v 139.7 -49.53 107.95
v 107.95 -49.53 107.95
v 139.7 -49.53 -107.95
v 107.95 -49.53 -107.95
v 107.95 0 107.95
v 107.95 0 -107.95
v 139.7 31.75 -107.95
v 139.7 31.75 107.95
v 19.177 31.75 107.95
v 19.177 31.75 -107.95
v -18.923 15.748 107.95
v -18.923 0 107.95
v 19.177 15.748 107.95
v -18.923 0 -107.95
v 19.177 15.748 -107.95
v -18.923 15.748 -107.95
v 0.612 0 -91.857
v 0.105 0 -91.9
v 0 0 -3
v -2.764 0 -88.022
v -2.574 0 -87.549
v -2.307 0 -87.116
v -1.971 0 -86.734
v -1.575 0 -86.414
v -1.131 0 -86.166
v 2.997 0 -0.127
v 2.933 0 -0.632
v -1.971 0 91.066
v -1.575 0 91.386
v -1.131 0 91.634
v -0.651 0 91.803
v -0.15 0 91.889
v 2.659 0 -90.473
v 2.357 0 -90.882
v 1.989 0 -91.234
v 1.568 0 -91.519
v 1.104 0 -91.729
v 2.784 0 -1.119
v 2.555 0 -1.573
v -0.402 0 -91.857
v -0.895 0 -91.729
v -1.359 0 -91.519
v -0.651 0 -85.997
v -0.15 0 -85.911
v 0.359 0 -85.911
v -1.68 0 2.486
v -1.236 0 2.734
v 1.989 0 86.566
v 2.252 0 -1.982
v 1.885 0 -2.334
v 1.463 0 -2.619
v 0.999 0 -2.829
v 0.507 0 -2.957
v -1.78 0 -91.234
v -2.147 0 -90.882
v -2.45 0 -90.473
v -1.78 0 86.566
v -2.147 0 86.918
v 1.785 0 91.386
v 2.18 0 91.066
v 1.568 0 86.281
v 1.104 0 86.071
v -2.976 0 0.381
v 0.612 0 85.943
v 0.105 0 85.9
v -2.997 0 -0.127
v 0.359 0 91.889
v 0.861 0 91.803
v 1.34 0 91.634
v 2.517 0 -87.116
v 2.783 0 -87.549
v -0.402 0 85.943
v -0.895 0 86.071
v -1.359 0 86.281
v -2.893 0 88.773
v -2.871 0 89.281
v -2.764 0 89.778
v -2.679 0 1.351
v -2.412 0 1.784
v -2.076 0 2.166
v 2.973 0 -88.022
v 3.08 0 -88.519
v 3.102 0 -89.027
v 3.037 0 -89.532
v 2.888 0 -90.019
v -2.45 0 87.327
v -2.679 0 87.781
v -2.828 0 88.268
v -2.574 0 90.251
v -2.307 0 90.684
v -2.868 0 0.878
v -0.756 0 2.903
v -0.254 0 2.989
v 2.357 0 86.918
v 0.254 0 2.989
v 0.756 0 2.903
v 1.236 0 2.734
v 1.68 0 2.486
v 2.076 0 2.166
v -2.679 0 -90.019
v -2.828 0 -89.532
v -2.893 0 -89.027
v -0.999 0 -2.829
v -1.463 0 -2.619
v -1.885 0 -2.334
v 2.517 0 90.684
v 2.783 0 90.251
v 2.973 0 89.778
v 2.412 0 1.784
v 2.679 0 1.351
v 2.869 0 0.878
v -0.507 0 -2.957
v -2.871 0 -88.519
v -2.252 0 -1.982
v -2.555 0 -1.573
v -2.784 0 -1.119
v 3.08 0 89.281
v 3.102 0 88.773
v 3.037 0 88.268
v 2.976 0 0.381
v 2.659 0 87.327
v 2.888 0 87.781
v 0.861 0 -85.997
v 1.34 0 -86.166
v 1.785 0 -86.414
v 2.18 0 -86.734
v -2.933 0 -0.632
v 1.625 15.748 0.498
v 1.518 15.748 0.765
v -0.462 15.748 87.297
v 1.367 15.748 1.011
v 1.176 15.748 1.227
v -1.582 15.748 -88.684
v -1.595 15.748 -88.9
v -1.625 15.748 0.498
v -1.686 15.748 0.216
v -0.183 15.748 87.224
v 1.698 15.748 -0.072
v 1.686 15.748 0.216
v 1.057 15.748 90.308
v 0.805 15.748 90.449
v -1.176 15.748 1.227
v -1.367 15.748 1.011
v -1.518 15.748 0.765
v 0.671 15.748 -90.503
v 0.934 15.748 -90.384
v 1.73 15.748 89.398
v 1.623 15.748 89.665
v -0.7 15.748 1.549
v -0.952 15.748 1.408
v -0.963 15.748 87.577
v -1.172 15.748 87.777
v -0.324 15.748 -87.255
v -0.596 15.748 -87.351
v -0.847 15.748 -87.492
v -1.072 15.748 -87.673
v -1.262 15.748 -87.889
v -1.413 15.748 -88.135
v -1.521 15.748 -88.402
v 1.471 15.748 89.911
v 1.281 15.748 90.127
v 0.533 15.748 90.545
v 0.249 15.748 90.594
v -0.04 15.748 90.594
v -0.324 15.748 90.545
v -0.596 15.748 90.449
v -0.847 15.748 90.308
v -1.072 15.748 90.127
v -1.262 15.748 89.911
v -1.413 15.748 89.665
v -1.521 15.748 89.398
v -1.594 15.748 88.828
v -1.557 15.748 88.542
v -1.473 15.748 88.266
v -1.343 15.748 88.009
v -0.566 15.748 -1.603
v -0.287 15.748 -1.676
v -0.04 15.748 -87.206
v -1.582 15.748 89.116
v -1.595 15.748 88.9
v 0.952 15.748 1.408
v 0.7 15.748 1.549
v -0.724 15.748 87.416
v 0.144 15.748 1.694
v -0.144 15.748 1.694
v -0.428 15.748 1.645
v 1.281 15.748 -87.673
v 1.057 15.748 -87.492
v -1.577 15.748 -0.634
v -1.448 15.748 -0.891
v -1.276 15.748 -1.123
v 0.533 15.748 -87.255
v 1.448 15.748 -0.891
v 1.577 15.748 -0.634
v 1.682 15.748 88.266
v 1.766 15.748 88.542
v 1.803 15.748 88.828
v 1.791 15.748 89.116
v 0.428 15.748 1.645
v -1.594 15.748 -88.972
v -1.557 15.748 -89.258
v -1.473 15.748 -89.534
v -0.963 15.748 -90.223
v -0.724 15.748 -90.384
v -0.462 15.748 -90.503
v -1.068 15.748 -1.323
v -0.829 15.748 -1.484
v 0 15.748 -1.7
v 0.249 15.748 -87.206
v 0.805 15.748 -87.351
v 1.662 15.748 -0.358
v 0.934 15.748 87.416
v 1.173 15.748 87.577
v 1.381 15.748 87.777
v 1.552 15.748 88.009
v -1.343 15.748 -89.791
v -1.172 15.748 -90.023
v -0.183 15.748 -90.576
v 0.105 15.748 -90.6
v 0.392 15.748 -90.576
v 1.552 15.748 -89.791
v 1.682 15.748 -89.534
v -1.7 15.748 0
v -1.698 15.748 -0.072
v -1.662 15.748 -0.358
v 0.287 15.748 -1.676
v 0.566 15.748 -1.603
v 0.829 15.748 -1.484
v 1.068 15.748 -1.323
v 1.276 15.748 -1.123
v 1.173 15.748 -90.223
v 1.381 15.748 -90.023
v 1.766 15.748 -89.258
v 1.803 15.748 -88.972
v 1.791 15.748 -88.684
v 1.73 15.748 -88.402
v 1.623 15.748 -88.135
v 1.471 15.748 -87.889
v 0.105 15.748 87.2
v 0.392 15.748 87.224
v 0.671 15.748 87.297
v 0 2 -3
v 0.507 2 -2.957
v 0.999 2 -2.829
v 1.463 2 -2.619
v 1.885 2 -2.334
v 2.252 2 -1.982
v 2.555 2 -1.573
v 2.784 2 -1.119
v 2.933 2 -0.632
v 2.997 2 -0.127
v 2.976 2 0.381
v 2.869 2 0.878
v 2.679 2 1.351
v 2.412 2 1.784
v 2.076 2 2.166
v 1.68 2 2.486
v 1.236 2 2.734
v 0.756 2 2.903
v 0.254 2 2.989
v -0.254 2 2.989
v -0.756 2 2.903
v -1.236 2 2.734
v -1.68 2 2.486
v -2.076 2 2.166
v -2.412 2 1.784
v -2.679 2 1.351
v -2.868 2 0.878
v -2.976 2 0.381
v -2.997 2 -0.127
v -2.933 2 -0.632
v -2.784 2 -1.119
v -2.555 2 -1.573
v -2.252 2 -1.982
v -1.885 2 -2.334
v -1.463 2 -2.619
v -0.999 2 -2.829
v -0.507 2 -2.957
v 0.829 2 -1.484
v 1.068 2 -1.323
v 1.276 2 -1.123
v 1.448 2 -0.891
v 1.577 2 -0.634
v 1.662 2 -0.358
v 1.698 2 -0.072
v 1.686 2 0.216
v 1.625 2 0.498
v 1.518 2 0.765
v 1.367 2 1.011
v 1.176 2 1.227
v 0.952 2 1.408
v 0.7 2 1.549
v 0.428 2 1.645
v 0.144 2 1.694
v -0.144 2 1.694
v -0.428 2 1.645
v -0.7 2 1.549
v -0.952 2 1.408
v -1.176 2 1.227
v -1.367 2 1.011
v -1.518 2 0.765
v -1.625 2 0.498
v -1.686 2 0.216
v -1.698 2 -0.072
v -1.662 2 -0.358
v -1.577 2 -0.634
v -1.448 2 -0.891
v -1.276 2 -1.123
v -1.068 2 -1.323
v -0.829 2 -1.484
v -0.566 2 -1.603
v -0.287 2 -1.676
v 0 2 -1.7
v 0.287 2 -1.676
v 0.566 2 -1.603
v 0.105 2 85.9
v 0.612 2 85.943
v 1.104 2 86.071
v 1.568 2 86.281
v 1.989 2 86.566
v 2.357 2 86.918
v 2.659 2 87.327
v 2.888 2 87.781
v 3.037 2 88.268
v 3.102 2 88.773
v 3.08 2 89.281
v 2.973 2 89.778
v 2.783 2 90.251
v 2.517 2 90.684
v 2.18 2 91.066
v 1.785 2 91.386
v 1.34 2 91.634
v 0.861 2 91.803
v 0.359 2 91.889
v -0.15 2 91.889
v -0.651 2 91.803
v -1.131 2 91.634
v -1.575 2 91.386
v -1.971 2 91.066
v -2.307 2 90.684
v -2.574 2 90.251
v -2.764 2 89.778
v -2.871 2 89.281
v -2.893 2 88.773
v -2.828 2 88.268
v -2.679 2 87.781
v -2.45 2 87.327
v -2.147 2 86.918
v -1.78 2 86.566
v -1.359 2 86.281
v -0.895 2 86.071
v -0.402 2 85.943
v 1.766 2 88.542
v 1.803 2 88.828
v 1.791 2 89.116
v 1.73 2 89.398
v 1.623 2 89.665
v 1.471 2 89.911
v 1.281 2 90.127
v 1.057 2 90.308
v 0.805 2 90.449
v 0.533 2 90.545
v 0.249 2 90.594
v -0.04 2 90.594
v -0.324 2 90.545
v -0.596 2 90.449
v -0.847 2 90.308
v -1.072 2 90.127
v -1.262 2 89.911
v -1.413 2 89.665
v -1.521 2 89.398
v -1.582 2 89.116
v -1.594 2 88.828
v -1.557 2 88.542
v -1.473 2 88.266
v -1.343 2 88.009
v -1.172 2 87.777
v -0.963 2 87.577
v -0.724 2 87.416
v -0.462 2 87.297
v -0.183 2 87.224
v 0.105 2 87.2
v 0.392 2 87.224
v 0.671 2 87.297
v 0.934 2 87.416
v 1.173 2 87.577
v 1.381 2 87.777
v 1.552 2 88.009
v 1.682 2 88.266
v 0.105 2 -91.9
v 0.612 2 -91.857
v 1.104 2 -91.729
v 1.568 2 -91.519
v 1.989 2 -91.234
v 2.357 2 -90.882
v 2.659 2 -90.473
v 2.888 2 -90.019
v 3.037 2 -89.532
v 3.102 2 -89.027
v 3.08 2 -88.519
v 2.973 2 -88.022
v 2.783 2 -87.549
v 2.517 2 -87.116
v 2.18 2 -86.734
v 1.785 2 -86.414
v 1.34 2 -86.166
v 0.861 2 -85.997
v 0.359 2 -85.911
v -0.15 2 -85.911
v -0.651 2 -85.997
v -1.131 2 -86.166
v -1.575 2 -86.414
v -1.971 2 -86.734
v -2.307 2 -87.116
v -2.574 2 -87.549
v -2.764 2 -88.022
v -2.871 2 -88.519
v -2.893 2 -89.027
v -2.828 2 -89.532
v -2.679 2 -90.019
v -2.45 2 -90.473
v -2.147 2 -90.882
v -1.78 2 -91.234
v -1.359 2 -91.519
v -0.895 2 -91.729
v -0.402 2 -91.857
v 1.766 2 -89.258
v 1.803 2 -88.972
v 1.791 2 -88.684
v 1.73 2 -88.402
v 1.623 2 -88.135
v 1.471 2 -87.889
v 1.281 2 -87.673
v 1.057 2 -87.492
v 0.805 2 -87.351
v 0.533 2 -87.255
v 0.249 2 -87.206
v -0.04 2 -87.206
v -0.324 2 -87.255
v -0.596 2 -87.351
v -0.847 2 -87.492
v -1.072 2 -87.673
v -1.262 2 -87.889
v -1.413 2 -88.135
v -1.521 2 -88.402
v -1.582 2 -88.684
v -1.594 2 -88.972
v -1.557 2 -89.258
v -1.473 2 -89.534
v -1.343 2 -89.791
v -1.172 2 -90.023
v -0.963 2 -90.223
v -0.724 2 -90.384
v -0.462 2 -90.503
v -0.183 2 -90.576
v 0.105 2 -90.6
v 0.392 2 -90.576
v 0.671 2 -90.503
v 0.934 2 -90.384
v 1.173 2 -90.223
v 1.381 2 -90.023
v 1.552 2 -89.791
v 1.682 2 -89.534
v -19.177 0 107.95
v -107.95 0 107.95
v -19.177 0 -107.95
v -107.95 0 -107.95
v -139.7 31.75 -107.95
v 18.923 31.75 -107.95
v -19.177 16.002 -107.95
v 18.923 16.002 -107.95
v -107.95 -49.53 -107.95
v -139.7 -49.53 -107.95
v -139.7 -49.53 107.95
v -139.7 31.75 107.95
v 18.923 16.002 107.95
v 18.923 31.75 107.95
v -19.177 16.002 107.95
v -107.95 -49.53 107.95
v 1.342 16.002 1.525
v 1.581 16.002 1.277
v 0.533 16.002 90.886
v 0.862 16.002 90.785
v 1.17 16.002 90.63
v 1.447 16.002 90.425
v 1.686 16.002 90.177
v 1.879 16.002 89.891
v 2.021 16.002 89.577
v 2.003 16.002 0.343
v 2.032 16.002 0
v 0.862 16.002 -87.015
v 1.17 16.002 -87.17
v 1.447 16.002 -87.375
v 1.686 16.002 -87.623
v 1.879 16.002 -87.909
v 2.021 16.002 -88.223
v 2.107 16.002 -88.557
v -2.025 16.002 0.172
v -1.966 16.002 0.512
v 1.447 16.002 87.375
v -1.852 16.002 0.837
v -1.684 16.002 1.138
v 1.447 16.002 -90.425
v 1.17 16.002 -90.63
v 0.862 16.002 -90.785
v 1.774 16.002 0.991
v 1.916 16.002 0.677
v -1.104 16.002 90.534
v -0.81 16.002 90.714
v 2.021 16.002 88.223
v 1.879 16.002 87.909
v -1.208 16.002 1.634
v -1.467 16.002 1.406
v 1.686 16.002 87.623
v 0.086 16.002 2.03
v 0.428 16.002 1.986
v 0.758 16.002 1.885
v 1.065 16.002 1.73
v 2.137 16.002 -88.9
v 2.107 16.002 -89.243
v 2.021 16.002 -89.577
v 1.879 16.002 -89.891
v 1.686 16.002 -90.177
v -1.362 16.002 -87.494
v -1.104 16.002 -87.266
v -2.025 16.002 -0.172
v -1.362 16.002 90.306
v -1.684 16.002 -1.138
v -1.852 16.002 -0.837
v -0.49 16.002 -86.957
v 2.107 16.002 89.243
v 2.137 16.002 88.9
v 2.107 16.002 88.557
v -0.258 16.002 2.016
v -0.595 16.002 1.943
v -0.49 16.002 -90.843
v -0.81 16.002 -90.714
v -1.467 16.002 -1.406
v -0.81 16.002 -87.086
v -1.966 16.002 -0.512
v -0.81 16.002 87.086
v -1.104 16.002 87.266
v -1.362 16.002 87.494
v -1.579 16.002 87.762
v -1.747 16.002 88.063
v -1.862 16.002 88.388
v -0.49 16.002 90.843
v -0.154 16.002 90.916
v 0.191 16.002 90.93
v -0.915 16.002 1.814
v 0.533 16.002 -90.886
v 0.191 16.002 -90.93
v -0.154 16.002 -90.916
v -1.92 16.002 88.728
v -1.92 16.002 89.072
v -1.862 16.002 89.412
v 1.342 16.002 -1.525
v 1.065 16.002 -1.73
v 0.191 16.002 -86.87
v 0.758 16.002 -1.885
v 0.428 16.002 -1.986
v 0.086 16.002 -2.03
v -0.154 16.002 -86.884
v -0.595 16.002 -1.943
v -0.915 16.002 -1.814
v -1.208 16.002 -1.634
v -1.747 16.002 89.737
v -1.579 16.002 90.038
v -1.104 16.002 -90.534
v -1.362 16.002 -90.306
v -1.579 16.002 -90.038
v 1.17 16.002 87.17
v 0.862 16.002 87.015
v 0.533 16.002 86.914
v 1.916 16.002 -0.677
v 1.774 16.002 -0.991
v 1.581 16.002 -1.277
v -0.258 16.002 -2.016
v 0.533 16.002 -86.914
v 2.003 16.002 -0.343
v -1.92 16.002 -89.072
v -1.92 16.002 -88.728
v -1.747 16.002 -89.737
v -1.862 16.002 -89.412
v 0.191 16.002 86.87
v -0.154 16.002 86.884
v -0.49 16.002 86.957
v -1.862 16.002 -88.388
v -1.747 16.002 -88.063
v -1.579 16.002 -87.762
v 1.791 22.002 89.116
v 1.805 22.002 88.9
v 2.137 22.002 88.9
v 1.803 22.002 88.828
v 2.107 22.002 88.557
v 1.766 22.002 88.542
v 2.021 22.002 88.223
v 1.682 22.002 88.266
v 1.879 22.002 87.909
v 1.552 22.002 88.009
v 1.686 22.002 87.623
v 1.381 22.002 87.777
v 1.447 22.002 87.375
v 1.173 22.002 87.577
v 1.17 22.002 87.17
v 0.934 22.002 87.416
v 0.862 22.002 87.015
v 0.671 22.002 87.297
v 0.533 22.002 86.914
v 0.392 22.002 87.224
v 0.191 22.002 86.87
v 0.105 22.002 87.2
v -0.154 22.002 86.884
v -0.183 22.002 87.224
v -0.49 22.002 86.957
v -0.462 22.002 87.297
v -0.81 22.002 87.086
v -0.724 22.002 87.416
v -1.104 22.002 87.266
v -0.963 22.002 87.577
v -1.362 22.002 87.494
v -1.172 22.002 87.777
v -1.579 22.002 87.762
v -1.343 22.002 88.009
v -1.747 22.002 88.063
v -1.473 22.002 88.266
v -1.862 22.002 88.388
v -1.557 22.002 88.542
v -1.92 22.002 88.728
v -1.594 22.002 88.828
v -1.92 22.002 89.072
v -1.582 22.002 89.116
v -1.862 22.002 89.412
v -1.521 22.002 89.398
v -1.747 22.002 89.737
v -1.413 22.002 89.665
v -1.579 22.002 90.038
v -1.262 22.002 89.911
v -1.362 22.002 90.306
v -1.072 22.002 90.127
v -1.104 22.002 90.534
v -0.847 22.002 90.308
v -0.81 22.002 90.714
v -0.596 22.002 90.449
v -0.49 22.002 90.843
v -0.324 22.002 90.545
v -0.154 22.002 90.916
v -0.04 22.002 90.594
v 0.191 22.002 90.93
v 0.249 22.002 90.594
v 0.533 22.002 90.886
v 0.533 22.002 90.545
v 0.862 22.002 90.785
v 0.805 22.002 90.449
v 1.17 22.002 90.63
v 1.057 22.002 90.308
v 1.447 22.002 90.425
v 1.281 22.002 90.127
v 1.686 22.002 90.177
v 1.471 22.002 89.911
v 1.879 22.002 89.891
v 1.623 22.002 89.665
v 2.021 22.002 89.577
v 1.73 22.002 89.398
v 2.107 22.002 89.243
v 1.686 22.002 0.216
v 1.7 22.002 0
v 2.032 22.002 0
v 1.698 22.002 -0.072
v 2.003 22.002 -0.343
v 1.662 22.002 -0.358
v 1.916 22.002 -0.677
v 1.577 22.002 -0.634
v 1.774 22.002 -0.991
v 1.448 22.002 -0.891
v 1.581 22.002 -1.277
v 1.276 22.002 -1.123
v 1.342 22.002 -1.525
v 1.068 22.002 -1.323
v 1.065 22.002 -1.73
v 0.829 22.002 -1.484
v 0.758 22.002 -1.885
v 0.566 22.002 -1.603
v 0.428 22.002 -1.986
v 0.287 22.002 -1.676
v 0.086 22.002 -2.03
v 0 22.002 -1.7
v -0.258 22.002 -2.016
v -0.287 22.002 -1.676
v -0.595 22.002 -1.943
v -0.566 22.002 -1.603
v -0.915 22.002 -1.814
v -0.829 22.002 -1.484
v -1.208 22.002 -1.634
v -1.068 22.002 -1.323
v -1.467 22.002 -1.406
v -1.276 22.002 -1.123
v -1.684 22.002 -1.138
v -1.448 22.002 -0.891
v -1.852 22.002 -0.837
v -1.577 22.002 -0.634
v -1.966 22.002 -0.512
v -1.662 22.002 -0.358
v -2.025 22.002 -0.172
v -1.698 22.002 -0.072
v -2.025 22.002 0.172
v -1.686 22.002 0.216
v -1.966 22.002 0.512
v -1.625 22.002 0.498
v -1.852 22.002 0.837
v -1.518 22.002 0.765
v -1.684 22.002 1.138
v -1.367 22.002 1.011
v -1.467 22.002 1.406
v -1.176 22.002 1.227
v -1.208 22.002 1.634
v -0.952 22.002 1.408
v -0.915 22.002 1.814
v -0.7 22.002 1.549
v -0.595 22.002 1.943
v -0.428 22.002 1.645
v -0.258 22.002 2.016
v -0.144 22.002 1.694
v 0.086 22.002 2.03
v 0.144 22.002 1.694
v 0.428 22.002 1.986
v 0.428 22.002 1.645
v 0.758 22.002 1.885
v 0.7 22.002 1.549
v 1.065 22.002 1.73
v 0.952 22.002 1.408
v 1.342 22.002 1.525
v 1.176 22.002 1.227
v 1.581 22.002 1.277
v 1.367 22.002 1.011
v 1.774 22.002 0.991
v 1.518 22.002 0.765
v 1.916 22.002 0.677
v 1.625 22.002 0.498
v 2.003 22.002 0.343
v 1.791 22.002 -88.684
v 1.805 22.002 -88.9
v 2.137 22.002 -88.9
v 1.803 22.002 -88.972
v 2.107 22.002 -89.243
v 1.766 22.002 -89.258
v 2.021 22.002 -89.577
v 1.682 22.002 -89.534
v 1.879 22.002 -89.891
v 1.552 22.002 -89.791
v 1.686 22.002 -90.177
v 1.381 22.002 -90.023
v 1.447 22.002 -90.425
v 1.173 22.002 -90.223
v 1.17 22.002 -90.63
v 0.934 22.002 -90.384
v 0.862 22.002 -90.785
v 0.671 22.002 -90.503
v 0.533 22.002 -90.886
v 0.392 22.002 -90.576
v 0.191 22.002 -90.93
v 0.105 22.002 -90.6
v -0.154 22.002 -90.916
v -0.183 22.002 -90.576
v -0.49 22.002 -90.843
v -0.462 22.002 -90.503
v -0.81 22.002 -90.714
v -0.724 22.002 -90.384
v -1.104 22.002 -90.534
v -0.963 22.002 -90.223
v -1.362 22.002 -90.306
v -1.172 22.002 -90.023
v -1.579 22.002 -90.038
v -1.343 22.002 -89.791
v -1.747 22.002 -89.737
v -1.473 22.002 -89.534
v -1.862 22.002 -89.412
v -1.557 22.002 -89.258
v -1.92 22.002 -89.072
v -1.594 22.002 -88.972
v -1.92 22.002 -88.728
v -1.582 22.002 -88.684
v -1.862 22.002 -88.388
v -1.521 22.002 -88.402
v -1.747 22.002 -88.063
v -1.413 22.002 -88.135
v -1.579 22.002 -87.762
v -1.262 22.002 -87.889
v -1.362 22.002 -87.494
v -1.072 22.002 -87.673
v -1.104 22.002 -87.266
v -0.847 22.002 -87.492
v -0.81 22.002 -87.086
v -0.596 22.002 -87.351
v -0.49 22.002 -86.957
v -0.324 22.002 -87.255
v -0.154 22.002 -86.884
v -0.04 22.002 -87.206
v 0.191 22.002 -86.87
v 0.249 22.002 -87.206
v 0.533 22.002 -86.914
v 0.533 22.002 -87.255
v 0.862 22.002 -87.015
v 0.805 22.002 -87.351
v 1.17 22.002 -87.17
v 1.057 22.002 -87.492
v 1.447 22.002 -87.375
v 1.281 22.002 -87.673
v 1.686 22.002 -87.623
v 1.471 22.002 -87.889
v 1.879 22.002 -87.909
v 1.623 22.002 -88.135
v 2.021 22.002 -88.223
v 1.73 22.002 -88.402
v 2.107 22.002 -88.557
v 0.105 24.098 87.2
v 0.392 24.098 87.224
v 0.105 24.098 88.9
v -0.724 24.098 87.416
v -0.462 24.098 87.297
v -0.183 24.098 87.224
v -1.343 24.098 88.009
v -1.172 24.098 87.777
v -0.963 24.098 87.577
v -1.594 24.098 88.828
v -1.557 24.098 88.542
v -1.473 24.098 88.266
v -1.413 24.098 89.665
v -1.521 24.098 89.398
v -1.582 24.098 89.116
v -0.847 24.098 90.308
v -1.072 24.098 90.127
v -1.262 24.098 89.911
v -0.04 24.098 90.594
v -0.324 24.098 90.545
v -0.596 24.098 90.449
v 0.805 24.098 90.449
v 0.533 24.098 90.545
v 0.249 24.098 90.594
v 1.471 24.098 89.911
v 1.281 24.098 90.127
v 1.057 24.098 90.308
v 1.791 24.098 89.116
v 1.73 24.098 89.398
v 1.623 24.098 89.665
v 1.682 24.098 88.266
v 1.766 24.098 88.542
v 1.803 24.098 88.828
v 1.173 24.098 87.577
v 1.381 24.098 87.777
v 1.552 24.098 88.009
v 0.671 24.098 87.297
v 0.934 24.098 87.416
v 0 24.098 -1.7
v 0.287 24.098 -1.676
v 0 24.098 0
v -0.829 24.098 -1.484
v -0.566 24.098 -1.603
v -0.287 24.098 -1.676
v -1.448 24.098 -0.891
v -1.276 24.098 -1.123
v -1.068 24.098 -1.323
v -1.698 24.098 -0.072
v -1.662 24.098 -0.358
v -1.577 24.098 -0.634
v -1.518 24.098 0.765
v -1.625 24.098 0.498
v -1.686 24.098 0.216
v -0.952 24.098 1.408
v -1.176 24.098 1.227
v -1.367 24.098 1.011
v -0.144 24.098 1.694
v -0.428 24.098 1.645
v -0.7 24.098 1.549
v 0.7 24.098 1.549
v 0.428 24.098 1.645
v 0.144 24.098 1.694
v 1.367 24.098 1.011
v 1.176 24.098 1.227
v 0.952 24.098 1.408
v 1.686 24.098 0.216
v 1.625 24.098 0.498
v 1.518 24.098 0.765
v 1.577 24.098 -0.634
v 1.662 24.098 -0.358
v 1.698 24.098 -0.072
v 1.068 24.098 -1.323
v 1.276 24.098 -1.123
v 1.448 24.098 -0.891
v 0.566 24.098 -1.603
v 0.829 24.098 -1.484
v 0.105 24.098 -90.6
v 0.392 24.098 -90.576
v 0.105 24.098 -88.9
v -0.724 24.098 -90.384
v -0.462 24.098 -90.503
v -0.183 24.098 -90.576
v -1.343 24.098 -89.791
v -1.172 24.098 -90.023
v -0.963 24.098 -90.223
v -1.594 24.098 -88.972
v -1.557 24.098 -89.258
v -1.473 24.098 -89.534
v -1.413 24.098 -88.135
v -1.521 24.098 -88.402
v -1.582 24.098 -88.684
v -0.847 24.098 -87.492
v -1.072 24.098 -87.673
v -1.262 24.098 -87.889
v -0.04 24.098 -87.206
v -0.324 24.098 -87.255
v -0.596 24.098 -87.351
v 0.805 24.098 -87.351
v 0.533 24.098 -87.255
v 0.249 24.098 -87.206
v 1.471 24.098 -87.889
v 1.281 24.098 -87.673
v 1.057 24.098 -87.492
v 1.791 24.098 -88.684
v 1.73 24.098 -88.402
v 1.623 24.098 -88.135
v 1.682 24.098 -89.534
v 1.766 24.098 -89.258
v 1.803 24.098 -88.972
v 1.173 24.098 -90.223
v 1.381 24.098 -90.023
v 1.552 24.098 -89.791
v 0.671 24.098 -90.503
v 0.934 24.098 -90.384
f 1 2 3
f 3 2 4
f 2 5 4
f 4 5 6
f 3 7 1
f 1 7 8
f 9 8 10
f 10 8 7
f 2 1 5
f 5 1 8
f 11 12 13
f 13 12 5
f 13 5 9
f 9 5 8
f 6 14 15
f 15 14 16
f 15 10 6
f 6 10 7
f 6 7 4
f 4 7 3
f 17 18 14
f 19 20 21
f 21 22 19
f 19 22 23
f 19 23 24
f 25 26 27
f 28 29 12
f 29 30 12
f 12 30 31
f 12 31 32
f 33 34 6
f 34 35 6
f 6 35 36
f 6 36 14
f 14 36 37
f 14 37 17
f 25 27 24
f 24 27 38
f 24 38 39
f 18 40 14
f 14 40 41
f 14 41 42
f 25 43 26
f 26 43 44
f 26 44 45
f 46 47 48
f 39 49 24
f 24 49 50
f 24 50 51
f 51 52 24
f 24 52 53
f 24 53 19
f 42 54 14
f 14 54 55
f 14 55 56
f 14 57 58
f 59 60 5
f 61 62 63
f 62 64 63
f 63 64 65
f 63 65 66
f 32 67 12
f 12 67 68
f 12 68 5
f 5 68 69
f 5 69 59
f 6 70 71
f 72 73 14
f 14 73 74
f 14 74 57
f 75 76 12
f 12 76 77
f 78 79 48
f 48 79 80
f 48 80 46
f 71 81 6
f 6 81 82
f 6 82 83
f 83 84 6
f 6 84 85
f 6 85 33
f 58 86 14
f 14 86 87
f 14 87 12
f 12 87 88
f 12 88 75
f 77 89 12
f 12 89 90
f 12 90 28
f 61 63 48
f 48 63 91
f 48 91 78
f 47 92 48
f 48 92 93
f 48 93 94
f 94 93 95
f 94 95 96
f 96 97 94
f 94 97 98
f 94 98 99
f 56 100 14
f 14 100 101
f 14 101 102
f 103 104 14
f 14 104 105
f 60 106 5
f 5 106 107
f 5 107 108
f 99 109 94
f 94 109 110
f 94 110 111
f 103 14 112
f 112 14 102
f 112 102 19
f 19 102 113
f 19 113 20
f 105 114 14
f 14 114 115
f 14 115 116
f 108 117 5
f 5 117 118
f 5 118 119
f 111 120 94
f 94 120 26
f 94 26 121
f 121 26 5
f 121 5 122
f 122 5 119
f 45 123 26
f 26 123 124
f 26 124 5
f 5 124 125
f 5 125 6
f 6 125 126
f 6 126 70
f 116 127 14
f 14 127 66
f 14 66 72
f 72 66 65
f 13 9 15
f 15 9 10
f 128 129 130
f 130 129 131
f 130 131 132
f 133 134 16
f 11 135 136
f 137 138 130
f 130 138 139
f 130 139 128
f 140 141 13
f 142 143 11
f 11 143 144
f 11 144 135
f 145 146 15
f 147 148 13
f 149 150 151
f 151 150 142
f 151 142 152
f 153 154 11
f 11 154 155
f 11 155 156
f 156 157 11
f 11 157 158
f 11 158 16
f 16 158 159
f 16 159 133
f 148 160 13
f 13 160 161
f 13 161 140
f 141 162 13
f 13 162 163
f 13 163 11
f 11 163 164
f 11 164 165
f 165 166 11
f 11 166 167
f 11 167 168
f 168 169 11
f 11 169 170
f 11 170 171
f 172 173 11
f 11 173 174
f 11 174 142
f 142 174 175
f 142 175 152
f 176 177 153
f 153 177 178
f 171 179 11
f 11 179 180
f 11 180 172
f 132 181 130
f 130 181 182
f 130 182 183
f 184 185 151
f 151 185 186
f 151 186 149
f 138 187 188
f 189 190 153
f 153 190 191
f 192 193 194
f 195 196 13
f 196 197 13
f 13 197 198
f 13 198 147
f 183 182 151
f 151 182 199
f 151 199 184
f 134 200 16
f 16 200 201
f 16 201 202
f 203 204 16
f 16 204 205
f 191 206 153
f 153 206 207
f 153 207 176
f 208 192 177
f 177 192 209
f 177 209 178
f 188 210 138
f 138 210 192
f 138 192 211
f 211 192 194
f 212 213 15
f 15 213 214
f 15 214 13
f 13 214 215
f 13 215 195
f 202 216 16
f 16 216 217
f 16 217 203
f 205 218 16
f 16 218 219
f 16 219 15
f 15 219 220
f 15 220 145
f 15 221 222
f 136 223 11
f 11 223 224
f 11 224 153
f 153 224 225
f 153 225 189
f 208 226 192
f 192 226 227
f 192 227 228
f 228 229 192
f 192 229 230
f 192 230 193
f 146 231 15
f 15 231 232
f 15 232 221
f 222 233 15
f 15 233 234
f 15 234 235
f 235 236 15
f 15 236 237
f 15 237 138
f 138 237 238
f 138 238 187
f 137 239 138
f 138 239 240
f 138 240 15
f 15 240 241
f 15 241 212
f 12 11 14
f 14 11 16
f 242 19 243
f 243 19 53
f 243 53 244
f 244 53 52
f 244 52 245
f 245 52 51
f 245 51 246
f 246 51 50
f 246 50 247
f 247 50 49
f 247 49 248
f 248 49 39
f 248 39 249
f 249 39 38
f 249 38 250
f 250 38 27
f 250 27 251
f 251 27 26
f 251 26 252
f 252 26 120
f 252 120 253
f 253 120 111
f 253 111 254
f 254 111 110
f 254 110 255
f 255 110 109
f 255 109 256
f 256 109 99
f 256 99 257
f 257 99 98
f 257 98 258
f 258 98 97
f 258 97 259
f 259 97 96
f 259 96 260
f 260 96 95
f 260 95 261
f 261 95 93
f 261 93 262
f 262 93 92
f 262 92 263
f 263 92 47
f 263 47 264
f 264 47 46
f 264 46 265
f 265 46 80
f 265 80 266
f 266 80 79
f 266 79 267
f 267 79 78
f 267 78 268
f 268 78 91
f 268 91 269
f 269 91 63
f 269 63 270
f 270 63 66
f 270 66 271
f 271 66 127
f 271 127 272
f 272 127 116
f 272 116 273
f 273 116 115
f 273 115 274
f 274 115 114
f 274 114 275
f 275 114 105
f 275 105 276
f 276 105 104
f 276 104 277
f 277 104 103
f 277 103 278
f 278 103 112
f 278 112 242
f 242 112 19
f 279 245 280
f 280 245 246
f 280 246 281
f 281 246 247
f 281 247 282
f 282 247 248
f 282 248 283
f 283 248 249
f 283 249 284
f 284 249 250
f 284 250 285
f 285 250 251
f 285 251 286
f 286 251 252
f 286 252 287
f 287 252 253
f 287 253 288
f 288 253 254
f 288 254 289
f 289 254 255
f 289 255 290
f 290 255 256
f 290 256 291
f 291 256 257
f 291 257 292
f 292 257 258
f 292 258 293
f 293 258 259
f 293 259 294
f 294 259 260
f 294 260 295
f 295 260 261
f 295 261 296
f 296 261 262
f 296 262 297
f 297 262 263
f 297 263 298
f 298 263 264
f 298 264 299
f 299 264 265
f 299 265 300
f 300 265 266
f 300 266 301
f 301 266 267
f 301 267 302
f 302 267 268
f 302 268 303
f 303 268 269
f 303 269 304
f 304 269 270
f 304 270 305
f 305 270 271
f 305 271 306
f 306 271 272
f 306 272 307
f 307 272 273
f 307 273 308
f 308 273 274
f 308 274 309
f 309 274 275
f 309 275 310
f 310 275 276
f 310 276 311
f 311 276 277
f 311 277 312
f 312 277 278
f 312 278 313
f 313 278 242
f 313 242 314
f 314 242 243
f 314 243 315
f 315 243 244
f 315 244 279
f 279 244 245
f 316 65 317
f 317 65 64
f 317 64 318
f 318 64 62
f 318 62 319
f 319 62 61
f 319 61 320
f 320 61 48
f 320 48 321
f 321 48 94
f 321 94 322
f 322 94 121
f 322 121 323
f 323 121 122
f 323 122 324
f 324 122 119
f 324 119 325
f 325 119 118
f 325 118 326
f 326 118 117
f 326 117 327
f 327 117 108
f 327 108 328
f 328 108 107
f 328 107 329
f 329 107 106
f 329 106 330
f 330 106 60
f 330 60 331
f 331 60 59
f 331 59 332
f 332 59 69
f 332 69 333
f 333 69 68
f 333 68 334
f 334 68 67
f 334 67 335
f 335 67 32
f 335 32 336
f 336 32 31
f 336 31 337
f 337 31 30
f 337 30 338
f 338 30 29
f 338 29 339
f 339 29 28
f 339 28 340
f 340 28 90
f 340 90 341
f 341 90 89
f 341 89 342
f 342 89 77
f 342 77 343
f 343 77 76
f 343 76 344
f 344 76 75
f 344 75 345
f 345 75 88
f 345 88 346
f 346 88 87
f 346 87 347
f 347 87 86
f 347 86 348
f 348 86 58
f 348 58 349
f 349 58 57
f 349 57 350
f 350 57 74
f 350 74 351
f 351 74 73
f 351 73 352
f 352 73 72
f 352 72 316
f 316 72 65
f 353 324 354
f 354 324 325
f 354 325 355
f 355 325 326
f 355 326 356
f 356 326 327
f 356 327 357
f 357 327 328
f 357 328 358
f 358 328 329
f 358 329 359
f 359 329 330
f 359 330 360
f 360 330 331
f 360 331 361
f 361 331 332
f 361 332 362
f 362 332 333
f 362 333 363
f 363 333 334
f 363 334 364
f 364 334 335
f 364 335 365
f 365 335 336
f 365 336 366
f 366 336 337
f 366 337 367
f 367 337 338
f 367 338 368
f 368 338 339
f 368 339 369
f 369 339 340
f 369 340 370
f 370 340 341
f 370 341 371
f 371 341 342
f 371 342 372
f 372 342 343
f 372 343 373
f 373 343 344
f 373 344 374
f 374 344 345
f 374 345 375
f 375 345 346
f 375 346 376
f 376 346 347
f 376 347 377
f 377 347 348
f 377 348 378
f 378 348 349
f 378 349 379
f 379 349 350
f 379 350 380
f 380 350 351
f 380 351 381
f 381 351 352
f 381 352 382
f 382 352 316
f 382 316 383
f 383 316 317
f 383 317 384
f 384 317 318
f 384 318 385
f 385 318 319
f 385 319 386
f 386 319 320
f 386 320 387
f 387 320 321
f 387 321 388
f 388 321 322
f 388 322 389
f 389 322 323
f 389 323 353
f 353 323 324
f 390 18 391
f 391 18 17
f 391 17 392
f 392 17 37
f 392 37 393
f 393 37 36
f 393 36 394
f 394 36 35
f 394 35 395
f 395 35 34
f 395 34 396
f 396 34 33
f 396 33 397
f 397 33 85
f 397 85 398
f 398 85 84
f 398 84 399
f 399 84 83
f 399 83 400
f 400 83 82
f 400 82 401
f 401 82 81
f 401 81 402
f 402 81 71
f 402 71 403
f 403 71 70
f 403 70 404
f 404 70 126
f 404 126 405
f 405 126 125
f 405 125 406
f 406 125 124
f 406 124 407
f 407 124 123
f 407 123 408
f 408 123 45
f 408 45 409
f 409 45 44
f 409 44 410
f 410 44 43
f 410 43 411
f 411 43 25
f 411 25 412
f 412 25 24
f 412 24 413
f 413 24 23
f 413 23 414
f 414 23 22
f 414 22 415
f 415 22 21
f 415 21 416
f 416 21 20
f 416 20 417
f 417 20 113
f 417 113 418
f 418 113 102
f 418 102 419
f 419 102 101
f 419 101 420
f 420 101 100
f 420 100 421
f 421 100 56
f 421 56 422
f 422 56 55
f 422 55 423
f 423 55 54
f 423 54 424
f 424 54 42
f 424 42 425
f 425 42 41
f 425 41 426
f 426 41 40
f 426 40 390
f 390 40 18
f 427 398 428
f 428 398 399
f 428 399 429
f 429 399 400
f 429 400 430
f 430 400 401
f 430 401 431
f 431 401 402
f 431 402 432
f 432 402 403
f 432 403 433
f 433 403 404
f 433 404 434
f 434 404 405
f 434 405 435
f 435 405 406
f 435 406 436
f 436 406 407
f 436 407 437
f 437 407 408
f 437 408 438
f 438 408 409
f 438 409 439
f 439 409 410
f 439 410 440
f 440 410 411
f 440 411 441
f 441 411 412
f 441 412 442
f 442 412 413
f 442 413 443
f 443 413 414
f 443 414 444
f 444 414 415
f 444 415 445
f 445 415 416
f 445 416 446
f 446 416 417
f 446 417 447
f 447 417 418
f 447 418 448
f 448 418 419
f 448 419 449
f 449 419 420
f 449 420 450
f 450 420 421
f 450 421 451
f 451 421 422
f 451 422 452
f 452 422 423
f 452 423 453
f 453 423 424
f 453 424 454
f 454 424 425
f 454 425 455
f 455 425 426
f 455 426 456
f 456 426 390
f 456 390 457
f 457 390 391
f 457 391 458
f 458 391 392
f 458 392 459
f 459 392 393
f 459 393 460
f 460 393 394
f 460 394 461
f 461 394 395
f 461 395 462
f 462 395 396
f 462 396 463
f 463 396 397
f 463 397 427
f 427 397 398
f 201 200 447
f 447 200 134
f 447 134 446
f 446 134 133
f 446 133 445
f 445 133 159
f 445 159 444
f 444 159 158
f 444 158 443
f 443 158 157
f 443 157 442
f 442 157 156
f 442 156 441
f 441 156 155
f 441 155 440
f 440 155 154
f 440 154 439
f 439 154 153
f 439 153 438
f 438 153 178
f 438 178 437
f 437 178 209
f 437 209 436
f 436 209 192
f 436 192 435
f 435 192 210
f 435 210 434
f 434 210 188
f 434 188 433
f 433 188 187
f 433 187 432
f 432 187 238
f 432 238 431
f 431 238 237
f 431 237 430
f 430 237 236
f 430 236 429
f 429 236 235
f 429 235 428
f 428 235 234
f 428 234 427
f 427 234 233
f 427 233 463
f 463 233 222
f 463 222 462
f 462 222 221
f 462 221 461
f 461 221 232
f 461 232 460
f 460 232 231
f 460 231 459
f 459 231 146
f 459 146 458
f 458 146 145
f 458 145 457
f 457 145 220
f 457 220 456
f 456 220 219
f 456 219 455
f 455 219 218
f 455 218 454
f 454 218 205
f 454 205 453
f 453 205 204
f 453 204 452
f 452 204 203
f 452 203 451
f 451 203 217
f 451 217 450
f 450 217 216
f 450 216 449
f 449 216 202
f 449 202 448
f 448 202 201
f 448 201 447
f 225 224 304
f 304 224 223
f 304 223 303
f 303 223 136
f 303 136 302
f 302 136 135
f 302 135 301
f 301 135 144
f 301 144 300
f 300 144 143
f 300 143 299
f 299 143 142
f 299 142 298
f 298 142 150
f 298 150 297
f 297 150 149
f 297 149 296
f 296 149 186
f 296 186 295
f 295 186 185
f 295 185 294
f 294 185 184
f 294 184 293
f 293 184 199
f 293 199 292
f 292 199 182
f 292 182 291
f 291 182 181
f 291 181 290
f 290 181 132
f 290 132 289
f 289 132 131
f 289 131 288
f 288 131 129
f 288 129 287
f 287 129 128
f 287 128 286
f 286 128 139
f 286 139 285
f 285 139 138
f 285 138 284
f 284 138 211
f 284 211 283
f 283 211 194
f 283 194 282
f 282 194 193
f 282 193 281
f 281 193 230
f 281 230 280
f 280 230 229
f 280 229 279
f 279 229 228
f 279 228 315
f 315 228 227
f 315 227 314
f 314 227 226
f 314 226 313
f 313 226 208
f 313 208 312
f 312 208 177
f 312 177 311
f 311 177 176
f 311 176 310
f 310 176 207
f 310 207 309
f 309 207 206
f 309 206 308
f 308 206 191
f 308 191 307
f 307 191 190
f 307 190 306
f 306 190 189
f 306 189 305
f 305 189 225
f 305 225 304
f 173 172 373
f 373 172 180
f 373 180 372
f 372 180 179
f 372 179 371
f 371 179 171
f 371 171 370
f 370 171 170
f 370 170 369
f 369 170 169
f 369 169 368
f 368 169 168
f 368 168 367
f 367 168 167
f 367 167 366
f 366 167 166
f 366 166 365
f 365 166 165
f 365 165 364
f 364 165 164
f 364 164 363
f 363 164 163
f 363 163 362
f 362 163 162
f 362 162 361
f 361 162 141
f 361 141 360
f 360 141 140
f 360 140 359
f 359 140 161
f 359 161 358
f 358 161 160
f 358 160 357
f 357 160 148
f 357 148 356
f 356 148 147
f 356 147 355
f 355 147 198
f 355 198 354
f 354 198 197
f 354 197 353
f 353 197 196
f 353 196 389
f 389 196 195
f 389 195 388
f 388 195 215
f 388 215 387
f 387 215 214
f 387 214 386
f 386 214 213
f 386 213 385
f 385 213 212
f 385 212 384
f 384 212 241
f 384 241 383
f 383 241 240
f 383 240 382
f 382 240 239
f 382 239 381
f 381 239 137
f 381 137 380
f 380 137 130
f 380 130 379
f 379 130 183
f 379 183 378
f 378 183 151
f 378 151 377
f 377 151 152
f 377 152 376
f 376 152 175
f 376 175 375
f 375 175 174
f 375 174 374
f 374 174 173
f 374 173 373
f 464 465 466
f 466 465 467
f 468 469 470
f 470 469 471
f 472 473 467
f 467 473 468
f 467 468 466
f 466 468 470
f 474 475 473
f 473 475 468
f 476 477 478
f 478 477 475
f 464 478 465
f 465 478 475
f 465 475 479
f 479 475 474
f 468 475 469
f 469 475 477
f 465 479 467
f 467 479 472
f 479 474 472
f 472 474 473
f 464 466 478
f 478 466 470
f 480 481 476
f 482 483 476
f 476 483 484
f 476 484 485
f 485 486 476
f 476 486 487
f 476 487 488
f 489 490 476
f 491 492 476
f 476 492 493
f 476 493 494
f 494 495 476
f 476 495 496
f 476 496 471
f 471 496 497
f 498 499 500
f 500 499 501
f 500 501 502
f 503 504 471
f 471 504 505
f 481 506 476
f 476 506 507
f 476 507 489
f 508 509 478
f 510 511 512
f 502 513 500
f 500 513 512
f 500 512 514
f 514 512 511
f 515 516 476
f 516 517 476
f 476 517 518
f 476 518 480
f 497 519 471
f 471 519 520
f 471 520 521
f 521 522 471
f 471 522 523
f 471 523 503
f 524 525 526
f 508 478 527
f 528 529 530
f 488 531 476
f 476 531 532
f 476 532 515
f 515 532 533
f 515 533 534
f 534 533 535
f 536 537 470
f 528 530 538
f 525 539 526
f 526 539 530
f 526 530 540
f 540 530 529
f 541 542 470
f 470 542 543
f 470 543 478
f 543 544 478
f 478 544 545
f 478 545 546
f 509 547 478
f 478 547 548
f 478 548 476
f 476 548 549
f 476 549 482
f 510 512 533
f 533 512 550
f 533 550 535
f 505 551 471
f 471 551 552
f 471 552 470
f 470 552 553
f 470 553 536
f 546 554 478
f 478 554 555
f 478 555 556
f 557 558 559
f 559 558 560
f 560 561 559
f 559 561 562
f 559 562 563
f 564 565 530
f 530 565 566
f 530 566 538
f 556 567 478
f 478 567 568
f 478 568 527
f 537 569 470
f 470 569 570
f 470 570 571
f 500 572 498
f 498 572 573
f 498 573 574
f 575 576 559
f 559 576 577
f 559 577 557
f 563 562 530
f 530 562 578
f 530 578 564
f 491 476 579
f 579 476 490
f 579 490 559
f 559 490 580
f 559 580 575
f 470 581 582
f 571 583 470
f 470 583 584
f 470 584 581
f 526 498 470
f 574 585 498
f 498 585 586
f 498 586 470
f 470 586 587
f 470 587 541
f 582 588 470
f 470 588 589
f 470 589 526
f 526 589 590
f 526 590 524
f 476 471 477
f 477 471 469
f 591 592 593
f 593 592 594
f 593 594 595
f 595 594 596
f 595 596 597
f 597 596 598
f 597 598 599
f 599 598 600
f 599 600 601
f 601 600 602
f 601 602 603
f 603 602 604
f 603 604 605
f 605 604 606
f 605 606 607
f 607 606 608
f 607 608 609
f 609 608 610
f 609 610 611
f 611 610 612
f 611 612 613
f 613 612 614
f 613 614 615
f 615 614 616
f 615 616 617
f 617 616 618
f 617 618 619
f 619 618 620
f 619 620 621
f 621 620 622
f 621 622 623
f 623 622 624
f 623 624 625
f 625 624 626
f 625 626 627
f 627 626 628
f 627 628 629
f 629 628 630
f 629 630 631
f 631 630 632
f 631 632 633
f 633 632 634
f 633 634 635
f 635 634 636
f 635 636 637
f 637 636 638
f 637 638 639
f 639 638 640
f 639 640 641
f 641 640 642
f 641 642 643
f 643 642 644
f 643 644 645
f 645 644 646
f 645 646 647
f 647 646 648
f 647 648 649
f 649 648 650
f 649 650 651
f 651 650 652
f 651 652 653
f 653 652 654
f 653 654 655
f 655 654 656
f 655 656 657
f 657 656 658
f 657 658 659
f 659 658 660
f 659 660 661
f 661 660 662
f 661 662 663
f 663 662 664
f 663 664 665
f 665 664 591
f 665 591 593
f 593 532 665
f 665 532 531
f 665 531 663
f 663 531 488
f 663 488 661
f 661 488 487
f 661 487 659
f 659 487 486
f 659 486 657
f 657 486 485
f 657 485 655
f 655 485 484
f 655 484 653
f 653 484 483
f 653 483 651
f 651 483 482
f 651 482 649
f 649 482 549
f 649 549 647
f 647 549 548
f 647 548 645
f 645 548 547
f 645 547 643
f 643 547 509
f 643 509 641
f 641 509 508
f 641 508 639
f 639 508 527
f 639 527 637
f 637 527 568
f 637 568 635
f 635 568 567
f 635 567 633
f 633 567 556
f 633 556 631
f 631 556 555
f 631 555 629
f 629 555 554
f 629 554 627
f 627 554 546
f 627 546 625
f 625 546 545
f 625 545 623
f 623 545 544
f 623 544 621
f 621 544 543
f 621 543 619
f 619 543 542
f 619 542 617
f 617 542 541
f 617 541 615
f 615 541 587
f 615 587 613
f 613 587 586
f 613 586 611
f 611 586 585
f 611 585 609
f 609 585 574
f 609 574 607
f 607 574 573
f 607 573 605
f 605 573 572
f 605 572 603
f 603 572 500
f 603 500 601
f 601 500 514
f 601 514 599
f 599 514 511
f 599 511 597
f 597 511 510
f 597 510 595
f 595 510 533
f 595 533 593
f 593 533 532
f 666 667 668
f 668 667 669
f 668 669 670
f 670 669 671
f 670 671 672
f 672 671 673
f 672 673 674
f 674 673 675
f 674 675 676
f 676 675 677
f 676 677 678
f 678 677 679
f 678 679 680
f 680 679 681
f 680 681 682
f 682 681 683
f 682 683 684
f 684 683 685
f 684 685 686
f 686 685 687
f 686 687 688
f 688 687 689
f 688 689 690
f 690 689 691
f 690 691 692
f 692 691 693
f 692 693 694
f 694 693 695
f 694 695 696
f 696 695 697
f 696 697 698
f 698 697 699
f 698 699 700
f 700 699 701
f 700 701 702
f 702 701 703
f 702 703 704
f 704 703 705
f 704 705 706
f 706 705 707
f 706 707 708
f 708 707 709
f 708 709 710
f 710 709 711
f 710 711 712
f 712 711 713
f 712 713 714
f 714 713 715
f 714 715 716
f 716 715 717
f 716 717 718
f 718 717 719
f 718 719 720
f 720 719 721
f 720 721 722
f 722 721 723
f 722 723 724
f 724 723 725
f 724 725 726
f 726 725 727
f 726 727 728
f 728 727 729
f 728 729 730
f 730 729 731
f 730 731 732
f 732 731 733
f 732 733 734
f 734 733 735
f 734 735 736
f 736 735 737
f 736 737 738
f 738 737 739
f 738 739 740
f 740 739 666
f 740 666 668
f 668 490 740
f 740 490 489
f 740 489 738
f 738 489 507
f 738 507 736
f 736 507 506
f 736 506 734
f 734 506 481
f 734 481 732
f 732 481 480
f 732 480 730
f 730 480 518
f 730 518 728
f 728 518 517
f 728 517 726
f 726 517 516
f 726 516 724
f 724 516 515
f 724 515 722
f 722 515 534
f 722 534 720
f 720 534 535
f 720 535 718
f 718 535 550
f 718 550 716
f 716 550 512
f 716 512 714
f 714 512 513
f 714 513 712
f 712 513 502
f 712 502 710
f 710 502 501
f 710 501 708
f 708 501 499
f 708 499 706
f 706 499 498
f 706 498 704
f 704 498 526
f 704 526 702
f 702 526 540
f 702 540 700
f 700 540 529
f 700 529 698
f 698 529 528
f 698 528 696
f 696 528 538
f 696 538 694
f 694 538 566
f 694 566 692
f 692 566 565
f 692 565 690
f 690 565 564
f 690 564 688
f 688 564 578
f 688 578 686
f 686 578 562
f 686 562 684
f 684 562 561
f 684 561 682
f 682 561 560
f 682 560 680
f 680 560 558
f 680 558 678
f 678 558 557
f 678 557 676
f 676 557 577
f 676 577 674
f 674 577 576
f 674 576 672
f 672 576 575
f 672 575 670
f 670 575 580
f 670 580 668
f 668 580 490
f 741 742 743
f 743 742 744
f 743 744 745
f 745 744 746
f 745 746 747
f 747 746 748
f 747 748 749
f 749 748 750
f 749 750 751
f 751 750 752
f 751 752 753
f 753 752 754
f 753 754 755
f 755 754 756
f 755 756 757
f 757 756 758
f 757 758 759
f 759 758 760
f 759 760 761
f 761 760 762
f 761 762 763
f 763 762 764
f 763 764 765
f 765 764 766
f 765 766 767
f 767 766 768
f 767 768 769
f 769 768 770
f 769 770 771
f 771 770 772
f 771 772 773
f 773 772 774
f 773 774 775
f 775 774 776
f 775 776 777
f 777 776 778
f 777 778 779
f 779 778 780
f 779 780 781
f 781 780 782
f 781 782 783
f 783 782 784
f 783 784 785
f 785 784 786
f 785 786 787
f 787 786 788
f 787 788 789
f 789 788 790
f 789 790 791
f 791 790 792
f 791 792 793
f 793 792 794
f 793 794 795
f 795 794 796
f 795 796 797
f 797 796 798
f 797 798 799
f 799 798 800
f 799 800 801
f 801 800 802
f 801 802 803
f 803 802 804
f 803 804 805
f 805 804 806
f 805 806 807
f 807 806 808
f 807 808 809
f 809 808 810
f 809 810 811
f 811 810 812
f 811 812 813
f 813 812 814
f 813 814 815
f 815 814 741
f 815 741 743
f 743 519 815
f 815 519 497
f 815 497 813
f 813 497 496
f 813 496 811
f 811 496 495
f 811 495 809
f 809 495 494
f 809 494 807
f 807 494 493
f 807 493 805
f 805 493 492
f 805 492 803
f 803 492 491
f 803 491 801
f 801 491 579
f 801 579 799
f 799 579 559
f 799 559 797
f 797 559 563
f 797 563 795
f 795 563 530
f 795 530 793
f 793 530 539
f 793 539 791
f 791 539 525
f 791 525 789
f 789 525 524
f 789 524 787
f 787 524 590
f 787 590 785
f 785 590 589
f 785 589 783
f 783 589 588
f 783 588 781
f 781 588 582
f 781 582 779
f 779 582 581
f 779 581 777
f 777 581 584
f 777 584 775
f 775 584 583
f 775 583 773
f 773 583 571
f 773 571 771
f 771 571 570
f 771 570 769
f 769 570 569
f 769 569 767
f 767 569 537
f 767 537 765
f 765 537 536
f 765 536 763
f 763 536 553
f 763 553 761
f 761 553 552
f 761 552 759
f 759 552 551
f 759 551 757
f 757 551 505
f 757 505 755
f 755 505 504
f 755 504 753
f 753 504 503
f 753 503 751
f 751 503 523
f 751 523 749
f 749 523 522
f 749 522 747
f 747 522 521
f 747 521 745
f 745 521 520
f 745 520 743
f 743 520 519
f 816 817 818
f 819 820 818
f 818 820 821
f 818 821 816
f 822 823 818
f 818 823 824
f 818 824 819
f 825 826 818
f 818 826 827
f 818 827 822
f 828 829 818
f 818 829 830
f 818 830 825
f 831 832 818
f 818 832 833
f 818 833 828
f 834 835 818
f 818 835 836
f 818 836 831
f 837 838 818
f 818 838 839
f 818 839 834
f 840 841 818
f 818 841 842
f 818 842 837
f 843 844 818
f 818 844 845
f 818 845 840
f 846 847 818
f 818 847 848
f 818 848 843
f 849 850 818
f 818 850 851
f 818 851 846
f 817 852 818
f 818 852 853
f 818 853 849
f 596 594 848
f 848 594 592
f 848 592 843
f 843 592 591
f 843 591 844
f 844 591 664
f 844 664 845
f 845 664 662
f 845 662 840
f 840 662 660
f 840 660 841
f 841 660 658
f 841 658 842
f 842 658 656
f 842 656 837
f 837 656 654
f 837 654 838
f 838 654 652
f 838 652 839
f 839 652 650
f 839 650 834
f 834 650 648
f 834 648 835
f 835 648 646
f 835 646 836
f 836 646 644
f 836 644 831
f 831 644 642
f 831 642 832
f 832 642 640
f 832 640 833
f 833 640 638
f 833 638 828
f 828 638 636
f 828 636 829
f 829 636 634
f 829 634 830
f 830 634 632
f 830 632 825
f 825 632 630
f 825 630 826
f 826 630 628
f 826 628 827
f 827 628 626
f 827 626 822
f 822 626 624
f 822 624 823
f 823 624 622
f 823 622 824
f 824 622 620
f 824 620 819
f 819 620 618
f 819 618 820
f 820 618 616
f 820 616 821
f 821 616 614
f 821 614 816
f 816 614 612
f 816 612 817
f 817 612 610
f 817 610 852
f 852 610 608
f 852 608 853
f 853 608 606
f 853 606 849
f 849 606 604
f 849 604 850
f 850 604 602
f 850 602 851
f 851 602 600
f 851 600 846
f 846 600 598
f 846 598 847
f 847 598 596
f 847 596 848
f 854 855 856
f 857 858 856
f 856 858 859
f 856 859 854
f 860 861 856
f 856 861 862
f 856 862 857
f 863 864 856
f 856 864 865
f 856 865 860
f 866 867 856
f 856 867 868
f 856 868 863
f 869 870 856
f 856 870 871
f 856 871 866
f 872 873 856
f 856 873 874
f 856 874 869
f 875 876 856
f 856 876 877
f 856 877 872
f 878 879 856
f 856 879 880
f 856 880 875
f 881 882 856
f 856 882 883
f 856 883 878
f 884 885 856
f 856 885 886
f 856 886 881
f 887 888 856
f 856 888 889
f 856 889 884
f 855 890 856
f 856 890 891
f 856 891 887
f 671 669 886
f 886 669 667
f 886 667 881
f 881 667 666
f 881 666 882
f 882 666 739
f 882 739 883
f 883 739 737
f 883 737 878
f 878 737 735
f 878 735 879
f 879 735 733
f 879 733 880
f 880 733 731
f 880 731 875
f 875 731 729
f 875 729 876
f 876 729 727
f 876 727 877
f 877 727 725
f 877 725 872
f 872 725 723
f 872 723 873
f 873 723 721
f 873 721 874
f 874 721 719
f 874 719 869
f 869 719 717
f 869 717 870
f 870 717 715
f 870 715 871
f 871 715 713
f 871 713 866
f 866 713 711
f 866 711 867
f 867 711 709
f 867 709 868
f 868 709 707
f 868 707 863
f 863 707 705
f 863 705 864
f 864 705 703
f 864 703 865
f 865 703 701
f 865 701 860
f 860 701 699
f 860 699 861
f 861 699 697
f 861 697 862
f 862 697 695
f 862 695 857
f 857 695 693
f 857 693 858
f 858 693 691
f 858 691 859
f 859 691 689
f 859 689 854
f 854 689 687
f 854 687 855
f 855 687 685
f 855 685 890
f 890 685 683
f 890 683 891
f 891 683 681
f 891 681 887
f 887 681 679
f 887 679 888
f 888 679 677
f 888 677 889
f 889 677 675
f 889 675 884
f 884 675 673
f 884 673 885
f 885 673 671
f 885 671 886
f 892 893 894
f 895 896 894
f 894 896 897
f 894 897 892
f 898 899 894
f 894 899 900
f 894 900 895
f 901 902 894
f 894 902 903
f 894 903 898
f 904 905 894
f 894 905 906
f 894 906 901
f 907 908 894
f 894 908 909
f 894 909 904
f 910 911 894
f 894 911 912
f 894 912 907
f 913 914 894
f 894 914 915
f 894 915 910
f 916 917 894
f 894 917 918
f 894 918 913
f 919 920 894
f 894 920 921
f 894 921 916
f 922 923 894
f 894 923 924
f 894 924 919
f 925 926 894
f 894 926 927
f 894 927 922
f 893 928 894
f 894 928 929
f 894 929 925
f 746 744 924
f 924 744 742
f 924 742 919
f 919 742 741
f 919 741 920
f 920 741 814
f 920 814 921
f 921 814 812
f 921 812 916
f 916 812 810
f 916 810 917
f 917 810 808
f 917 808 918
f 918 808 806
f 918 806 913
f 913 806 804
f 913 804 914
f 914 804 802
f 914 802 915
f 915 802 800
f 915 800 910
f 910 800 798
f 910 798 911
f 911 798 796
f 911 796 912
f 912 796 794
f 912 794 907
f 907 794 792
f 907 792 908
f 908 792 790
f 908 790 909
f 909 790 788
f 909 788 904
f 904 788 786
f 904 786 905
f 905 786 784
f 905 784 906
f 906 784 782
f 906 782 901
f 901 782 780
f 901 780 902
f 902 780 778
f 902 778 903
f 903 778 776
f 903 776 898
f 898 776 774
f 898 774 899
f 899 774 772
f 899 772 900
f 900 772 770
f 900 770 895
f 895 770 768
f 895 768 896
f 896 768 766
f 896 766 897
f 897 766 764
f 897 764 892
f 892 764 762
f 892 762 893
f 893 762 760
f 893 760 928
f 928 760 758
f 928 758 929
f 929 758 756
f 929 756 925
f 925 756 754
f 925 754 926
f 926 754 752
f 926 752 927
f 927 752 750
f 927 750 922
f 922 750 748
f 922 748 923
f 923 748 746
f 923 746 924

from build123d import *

# Parameters (mm, degrees)
SKETCH1_W                           = 279.4
SKETCH1_H                           = 215.9
BOSS_EXTRUDE1_DEPTH                 = 31.75
SKETCH2_W                           = 31.75
SKETCH2_H                           = 49.53
BOSS_EXTRUDE2_DEPTH                 = 215.9
CUT_EXTRUDE_THIN1_REACH             = 263.882
CUT_EXTRUDE_THIN1_DIRECTION_2_DEPTH = 262.881883489
SKETCH4_R                           = 3
CUT_EXTRUDE1_DEPTH                  = 2
SKETCH5_R                           = 1.7
CUT_EXTRUDE2_DEPTH                  = 22.098
SKETCH6_R                           = 2.032
CUT_EXTRUDE3_DEPTH                  = 6


with BuildPart() as part:
    # Sketch1 → Boss-Extrude1 (new body)
    with BuildSketch(Plane(origin=(0, 0, 0), x_dir=(1, 0, 0), z_dir=(0, 1, 0))):
        Rectangle(SKETCH1_W, SKETCH1_H)
    extrude(amount=BOSS_EXTRUDE1_DEPTH)

    # Sketch2 → Boss-Extrude2 (add)
    with BuildSketch(Plane.XY.offset(107.95)):
        with Locations((-123.825, -24.765)):
            Rectangle(SKETCH2_W, SKETCH2_H)
        with Locations((123.825, -24.765)):
            Rectangle(SKETCH2_W, SKETCH2_H)
    extrude(amount=-BOSS_EXTRUDE2_DEPTH)

    # Sketch3 → Cut-Extrude-Thin1 (cut, up to next)
    with BuildSketch(Plane(origin=(0, 0, -107.95), x_dir=(-1, 0, 0), z_dir=(0, 0, -1)), mode=Mode.PRIVATE) as cut_extrude_thin1_sk1:
        Polygon((-19.177, 31.75), (-19.177, 15.748), (18.923, 15.748), (18.923, 0), (19.177, 0), (19.177, 16.002), (-18.923, 16.002), (-18.923, 31.75), align=None)
    cut_extrude_thin1_tool1 = extrude(cut_extrude_thin1_sk1.sketch, amount=-CUT_EXTRUDE_THIN1_REACH, mode=Mode.PRIVATE) & part.part
    add(cut_extrude_thin1_tool1.solids().sort_by_distance((0, 15.875, -107.95))[0], mode=Mode.SUBTRACT)

    # Sketch3 → Cut-Extrude-Thin1 direction 2 (cut)
    with BuildSketch(Plane(origin=(0, 0, -107.95), x_dir=(-1, 0, 0), z_dir=(0, 0, -1))):
        Polygon((-19.177, 31.75), (-19.177, 15.748), (18.923, 15.748), (18.923, 0), (19.177, 0), (19.177, 16.002), (-18.923, 16.002), (-18.923, 31.75), align=None)
    extrude(amount=CUT_EXTRUDE_THIN1_DIRECTION_2_DEPTH, mode=Mode.SUBTRACT)


with BuildPart() as cut_extrude_thin1_piece_1:
    # of the separate pieces the step leaves, piece 1, a body of its own (cut_extrude_thin1_pieces)
    add(part.part.solids().sort_by_distance((19.177, 31.75, -107.95))[0])

    # Sketch4 → Cut-Extrude1 (cut)
    with BuildSketch(Plane.XZ):
        with Locations(Location((0, 0, 0), (0, 0, 270))):
            Circle(SKETCH4_R)
        with Locations(Location((0.104588235, 88.9, 0), (0, 0, 270))):
            Circle(SKETCH4_R)
        with Locations(Location((0.104588235, -88.9, 0), (0, 0, 270))):
            Circle(SKETCH4_R)
    extrude(amount=-CUT_EXTRUDE1_DEPTH, mode=Mode.SUBTRACT)


with BuildPart() as cut_extrude_thin1_piece_2:
    # of the separate pieces the step leaves, piece 2, a body of its own (cut_extrude_thin1_pieces)
    add(part.part.solids().sort_by_distance((-139.7, -49.53, -107.95))[0])


with BuildPart() as cut_extrude2_tool:
    # Sketch5 → Cut-Extrude2 (new body)
    with BuildSketch(Plane(origin=(0, 2, 0), x_dir=(-1, 0, 0), z_dir=(0, -1, 0))):
        with Locations(Location((-0.104588235, -88.9, 0), (0, 0, 90))):
            Circle(SKETCH5_R)
        with Locations(Location((0, 0, 0), (0, 0, 90))):
            Circle(SKETCH5_R)
        with Locations(Location((-0.104588235, 88.9, 0), (0, 0, 90))):
            Circle(SKETCH5_R)
    extrude(amount=-CUT_EXTRUDE2_DEPTH)


with BuildPart() as cut_extrude_thin1_piece_1_1:
    add(cut_extrude_thin1_piece_1.part)

    # Cut-Extrude2: cut by cut_extrude2_tool
    add(cut_extrude2_tool.part, mode=Mode.SUBTRACT)


with BuildPart() as cut_extrude_thin1_piece_2_1:
    add(cut_extrude_thin1_piece_2.part)

    # Cut-Extrude2: cut by cut_extrude2_tool
    add(cut_extrude2_tool.part, mode=Mode.SUBTRACT)

    # Sketch6 → Cut-Extrude3 (cut)
    with BuildSketch(Plane.XZ.offset(-16.002)):
        with Locations((0.104588235, 88.9)):
            Circle(SKETCH6_R)
        Circle(SKETCH6_R)
        with Locations((0.104588235, -88.9)):
            Circle(SKETCH6_R)
    extrude(amount=-CUT_EXTRUDE3_DEPTH, mode=Mode.SUBTRACT)


solid = Compound([cut_extrude_thin1_piece_1_1.part, cut_extrude_thin1_piece_2_1.part])
